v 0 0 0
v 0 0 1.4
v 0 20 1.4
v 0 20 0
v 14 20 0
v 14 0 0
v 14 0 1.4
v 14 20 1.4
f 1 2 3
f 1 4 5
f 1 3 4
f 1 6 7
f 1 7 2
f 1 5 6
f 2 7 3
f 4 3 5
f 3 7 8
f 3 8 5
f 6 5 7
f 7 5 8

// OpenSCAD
/* Warning, this is a very basic generator with a lot of approximation 
input data : [LQFP, 2QB, 14x20x1.4mm, 128, , B, C04-21009B]
generated by com.zoubworld.electronics.cad.model3d.Basic
Date : Sun Feb 15 10:50:49 CET 2026
*/

//body
color("black")
translate([0,0,0])
cube([14.0,20.0,1.4], center=false);
